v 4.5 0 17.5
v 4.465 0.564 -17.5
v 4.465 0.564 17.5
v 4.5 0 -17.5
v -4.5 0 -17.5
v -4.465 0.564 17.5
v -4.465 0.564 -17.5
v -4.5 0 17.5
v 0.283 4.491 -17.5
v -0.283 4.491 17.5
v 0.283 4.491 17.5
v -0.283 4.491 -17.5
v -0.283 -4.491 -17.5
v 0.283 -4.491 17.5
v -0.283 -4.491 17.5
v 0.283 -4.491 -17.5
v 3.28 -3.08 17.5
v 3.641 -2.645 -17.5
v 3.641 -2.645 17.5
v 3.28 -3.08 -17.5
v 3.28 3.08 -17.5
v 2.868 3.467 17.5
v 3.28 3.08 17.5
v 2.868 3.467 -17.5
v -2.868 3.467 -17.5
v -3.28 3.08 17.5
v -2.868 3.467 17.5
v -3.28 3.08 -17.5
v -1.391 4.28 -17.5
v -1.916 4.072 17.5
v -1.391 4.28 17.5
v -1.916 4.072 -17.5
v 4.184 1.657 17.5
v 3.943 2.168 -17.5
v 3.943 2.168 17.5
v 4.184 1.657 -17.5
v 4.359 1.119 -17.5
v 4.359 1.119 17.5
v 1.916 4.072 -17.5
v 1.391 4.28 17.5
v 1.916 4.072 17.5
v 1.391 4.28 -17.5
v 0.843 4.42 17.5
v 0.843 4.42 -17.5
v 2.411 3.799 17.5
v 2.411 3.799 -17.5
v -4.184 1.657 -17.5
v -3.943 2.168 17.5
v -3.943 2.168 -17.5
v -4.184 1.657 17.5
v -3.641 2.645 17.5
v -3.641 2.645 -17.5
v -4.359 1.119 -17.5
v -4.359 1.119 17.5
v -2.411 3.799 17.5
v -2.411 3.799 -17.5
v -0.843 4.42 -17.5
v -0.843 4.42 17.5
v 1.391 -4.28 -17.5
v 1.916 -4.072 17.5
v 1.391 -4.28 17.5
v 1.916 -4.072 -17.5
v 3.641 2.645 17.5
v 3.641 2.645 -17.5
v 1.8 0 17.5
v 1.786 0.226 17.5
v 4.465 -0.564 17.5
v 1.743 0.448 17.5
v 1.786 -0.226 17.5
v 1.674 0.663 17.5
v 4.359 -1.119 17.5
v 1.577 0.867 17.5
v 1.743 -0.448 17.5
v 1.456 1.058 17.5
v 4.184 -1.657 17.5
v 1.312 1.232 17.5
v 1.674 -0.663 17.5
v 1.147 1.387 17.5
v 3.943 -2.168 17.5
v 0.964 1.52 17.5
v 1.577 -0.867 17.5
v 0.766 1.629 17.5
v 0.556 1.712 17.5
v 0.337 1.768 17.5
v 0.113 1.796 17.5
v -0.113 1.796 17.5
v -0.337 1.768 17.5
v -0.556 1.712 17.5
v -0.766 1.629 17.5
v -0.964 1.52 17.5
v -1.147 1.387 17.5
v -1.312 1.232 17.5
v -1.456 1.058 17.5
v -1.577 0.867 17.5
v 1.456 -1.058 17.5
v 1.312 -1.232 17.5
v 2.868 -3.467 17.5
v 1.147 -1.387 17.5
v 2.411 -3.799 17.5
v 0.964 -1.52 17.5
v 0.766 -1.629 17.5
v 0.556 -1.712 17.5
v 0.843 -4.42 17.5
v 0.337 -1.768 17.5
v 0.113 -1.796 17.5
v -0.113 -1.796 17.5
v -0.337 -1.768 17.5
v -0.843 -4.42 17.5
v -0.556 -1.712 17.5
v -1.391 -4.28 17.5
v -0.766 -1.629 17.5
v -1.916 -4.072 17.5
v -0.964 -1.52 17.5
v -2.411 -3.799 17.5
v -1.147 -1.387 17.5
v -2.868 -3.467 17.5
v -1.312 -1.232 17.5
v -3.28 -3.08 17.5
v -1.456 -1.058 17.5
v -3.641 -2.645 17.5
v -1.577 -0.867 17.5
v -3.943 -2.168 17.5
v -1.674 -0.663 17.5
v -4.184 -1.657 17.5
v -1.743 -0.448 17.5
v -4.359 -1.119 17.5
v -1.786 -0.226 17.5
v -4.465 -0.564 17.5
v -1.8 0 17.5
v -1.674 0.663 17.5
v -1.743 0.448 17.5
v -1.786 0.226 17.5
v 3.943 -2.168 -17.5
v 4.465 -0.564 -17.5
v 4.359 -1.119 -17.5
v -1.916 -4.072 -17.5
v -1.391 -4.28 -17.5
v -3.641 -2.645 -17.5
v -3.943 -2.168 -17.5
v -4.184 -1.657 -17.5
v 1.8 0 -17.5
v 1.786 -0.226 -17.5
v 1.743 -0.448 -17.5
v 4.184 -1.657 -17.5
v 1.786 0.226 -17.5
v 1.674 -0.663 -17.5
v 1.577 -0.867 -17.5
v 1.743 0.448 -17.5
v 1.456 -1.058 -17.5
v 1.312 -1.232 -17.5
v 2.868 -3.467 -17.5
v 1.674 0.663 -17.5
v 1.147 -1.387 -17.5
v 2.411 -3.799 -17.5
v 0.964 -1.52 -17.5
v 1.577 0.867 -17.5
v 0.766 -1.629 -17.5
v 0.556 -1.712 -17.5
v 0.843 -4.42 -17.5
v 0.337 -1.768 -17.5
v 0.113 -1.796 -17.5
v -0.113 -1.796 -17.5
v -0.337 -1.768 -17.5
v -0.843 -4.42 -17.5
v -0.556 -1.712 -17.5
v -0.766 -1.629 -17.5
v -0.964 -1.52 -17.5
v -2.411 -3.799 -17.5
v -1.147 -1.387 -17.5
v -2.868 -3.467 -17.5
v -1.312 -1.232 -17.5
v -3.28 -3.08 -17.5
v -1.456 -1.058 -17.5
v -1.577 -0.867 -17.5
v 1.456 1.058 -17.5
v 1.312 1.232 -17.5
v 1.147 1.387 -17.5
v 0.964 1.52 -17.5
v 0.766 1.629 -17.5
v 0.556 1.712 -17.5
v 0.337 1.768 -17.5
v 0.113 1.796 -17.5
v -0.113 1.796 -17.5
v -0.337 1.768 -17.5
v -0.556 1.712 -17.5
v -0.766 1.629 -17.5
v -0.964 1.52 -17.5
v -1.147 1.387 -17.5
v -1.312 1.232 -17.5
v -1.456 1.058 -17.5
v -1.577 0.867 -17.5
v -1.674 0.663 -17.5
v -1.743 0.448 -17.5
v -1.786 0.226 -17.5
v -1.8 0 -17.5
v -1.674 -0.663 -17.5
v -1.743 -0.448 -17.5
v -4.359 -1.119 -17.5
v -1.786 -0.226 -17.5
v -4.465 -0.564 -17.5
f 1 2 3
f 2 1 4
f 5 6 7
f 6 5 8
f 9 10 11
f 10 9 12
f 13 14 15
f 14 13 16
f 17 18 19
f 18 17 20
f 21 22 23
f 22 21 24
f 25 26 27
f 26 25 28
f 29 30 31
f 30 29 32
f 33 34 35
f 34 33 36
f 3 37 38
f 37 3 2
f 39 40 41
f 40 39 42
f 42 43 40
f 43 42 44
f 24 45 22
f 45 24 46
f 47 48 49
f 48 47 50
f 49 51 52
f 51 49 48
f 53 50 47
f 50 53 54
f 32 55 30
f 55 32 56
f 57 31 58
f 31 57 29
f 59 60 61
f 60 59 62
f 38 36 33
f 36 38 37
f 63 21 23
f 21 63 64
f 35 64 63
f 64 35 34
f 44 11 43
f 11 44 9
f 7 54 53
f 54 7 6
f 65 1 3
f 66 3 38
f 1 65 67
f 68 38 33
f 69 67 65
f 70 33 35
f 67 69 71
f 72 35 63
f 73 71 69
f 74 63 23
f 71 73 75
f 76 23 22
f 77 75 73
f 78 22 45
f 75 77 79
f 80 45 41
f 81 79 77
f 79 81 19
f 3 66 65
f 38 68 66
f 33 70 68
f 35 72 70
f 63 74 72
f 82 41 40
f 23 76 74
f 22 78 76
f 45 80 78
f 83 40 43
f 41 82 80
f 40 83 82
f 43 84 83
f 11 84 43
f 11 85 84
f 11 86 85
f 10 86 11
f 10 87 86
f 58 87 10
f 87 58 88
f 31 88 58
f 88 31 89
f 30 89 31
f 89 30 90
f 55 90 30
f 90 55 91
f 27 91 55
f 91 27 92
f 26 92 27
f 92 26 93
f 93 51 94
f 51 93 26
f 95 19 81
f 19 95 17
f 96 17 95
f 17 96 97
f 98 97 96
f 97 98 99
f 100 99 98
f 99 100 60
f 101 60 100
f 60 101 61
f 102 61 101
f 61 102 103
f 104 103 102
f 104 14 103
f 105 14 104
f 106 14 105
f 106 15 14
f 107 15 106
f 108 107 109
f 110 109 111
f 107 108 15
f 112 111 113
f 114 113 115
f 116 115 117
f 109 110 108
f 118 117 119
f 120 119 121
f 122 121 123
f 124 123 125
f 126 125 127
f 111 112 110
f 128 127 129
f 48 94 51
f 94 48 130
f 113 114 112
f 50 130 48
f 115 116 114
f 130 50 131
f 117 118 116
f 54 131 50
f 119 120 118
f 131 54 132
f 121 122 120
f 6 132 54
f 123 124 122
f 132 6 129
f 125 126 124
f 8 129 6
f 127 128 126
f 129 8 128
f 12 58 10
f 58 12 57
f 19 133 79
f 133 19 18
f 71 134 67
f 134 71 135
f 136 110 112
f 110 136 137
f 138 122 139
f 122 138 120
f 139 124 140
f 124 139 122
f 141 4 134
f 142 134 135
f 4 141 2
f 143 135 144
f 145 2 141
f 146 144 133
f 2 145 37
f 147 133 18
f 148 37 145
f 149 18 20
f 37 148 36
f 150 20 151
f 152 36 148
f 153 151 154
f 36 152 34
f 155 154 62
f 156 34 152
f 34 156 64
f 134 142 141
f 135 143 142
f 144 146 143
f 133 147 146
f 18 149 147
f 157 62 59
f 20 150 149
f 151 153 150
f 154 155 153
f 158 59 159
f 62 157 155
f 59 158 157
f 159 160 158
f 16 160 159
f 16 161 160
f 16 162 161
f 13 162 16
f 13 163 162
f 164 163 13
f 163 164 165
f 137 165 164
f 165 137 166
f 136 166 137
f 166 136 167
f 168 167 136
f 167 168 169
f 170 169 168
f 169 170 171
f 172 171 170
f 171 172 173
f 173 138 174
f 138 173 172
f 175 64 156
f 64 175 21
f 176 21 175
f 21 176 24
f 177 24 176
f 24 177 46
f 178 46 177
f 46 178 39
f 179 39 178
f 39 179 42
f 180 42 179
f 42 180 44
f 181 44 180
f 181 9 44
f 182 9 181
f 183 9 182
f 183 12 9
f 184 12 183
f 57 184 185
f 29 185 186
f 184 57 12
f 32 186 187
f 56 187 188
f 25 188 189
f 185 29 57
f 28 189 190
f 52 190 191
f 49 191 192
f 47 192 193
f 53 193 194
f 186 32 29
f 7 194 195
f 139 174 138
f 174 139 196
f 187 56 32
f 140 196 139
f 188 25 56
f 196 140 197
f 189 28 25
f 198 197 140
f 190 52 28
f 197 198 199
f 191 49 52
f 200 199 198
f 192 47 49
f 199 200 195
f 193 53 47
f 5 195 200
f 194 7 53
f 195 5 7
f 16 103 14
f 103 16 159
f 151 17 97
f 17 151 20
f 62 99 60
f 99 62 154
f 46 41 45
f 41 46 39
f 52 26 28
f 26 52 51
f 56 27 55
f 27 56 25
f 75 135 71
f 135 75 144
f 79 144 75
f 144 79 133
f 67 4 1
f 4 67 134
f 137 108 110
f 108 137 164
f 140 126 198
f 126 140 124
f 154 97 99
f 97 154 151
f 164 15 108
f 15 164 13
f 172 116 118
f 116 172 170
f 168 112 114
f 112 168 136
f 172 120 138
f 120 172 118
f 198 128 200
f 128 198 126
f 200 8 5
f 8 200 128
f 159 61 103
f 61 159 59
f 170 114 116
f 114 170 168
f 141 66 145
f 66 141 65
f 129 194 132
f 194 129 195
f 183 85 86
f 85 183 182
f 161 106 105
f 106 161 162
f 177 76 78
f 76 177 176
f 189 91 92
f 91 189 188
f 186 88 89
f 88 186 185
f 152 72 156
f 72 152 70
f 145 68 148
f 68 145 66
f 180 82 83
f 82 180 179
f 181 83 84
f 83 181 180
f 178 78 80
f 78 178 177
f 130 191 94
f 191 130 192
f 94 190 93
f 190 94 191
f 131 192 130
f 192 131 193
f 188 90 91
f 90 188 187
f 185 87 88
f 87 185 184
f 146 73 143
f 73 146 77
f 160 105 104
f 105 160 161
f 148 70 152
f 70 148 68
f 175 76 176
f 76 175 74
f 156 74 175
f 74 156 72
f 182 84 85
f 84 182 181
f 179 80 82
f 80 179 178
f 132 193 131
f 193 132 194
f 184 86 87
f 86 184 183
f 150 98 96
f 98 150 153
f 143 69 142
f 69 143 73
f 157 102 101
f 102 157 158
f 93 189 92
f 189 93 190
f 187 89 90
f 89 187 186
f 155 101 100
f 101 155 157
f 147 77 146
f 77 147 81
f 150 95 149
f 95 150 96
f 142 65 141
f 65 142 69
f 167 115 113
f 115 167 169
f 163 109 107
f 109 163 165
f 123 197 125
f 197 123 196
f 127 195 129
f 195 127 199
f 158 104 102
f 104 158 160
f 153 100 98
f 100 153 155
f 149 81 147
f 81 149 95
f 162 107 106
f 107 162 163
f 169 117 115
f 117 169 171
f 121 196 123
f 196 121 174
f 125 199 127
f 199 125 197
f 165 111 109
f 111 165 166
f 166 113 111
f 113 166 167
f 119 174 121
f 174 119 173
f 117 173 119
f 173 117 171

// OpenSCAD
$fn = 50;


difference() {
	union() {
		translate(v = [0, 0, -17.5000000000]) {
			cylinder(h = 35, r = 4.5000000000);
		}
	}
	union() {
		translate(v = [0, 0, -100.0000000000]) {
			cylinder(h = 200, r = 1.8000000000);
		}
	}
}
